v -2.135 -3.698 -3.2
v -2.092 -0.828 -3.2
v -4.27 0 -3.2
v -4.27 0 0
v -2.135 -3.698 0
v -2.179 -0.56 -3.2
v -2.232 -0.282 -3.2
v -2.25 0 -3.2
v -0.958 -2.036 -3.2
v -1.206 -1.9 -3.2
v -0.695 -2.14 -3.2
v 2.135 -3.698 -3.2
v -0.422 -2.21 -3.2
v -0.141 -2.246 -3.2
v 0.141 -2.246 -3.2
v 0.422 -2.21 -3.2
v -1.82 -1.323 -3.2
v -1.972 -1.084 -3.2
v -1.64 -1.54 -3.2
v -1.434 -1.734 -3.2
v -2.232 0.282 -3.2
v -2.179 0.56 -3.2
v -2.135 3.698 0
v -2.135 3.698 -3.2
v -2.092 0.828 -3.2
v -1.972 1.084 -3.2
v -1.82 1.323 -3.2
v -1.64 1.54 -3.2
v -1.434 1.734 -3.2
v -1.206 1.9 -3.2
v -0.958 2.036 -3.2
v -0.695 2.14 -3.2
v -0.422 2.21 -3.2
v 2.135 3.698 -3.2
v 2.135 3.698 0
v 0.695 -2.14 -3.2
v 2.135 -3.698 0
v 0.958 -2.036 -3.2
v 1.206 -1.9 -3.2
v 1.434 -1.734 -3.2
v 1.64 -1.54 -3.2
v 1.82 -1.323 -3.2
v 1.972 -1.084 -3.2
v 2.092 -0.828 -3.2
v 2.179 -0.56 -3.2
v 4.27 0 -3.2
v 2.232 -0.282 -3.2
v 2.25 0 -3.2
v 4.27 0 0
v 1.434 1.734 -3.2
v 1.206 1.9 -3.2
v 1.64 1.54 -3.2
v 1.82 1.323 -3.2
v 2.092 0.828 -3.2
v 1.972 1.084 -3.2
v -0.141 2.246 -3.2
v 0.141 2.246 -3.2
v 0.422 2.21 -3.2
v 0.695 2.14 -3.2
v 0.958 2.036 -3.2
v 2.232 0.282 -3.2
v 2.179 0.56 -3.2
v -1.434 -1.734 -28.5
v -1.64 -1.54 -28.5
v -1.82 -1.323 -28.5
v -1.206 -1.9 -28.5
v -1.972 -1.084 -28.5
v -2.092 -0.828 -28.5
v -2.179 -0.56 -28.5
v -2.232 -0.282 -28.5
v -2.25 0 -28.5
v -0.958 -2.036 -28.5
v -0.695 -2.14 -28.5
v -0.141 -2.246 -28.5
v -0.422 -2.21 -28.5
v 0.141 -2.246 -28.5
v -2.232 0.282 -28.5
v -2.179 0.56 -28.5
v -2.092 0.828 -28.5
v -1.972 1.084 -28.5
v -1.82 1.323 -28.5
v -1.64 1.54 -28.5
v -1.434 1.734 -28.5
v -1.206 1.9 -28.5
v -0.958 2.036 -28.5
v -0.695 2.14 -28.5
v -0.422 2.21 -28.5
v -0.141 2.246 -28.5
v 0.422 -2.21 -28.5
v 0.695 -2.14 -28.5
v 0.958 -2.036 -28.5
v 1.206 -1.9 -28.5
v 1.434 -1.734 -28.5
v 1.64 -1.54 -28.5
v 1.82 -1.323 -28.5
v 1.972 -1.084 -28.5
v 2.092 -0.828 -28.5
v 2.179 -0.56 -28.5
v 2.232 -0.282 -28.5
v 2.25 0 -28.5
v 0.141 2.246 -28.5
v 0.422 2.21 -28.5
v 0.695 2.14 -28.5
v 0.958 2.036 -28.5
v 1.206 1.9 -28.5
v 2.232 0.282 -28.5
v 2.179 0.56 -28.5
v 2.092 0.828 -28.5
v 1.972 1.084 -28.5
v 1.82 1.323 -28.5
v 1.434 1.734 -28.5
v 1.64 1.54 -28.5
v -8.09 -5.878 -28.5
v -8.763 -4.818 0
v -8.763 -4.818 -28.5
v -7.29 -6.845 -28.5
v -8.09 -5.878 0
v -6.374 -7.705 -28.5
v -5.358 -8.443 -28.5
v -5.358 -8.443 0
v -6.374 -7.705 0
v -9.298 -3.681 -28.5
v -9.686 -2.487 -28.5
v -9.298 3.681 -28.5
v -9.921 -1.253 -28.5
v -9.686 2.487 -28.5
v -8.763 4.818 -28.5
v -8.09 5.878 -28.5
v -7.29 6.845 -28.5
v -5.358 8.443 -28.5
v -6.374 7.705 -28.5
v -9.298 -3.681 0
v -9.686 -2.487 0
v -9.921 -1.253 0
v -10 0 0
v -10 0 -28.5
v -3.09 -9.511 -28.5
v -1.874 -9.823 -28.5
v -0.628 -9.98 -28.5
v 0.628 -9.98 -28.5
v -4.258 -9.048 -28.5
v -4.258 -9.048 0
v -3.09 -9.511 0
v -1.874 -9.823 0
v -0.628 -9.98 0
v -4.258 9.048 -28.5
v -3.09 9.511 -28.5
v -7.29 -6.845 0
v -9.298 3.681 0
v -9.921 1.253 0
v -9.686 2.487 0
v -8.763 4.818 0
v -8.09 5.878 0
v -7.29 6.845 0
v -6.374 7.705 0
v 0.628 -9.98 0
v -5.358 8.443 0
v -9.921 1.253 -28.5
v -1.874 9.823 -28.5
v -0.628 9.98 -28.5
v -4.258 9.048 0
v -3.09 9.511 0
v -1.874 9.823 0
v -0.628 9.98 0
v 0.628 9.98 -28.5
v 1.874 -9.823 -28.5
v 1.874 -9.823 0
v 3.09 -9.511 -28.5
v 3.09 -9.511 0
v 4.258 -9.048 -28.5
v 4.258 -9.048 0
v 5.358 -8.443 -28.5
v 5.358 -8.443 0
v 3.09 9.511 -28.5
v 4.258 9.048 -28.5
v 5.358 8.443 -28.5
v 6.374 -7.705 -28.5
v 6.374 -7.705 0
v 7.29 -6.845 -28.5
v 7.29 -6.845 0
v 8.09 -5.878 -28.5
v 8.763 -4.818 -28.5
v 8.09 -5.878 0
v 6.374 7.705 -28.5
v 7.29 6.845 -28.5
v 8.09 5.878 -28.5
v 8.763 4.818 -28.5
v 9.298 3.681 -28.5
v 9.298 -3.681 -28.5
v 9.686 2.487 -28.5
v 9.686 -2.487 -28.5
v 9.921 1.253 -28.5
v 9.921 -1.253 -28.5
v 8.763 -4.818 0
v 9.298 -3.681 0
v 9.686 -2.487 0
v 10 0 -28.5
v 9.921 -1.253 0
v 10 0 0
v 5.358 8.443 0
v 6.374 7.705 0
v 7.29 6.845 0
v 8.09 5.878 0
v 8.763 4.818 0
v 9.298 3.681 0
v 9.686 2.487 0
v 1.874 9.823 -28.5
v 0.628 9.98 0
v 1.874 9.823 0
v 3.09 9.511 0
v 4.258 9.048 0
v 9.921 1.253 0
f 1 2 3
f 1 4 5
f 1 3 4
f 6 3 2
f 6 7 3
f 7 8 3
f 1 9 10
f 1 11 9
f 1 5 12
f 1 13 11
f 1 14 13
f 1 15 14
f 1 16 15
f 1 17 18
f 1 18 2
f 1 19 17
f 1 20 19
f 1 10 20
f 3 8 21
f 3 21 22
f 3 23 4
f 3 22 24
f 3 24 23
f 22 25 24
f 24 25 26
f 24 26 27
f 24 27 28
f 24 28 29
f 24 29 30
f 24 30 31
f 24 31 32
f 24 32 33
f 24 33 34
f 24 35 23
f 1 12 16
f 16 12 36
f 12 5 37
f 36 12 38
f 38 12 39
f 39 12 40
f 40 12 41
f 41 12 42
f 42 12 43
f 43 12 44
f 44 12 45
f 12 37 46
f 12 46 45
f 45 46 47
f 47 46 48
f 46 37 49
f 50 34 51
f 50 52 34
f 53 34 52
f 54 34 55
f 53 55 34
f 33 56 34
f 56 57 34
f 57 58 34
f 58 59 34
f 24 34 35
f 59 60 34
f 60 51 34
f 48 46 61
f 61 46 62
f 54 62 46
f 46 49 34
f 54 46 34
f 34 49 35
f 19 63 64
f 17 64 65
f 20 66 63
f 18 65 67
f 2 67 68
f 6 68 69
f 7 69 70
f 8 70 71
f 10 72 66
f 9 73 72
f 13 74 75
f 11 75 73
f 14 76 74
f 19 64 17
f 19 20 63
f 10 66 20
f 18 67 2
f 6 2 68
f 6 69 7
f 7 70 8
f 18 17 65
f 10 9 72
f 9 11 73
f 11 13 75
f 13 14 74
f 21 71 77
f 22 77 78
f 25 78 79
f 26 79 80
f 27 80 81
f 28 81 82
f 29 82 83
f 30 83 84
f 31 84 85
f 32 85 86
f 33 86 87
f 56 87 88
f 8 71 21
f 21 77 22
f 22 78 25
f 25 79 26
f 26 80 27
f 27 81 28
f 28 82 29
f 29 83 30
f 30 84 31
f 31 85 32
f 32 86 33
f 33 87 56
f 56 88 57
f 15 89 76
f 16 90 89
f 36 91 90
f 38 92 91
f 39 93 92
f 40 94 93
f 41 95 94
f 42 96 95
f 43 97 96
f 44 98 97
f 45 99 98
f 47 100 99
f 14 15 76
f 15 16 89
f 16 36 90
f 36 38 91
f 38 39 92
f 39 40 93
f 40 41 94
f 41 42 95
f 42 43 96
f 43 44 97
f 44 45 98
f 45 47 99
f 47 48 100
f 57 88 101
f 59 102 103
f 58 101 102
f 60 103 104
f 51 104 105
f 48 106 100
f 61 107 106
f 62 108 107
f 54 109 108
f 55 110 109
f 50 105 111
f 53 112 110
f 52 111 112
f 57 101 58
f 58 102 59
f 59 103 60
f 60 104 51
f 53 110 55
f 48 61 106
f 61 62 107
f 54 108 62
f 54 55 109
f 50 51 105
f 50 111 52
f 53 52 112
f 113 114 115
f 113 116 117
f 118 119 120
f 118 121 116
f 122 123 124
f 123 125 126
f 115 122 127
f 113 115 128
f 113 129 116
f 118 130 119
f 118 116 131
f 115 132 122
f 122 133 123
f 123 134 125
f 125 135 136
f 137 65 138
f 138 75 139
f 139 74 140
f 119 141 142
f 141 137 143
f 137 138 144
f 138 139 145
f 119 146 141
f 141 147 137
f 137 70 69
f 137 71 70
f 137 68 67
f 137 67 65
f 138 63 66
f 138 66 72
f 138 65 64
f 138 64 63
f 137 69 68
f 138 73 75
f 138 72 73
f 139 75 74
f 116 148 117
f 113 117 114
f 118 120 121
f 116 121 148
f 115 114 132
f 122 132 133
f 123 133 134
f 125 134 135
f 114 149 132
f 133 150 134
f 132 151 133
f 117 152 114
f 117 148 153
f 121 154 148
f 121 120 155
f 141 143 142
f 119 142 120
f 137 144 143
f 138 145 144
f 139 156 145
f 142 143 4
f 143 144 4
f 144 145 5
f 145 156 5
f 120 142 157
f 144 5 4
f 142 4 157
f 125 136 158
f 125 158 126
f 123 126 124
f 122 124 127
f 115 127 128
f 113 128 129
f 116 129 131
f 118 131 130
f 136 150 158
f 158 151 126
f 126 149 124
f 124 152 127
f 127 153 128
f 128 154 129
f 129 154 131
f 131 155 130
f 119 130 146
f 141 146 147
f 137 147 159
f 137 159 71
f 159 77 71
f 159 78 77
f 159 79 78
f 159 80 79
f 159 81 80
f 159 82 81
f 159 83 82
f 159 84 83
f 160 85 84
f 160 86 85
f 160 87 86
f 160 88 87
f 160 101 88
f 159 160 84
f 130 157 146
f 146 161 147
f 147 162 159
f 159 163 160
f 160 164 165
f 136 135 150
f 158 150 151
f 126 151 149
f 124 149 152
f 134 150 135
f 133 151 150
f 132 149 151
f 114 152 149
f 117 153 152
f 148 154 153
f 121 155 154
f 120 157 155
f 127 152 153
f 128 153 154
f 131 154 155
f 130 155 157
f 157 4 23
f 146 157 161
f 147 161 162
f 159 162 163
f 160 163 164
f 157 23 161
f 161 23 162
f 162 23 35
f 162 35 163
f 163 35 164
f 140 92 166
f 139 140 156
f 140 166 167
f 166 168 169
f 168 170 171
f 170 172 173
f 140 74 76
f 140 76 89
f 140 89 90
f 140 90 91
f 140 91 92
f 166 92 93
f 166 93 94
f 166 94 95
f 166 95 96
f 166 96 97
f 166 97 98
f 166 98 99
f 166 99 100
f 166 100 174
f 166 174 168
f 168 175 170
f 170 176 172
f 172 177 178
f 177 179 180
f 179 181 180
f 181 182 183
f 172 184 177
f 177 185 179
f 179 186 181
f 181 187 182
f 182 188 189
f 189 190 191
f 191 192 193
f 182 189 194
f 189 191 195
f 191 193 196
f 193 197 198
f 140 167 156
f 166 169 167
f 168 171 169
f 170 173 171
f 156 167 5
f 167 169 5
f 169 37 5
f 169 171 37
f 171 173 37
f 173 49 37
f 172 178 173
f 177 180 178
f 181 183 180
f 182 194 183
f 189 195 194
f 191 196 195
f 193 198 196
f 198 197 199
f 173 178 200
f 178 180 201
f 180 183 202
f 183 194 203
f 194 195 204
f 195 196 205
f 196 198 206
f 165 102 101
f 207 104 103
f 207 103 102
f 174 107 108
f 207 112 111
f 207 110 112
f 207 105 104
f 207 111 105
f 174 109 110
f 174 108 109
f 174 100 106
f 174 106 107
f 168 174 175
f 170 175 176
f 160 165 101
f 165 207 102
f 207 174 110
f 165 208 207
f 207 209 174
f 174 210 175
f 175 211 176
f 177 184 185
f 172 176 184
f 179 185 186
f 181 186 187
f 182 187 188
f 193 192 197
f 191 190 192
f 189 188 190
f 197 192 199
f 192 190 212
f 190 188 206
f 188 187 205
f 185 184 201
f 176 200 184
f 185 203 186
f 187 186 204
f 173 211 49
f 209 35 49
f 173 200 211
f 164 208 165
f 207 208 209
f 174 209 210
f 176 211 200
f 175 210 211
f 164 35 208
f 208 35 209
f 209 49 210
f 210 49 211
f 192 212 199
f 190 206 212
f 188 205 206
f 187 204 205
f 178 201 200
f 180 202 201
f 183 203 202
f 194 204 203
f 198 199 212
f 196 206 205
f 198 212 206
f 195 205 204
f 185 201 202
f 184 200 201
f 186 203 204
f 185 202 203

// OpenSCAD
$fn = 50;

difference() {
	union() {
		translate(v = [0, 0, -28.5]) {
			cylinder(h = 28.5, r = 10.0);
		}
	}
	union() {
		translate(v = [0, 0, 0]) {
			rotate(a = [0, 0, 0]) {
				difference() {
					union() {
						translate(v = [0, 0, -3.2]) {
							linear_extrude(height = 3.2) {
								polygon(points = [[4.2698, 0.0], [2.1349000000000005, 3.697755269078796], [-2.134899999999999, 3.6977552690787965], [-4.2698, 5.228996902999369e-16], [-2.134900000000002, -3.6977552690787956], [2.1348999999999974, -3.697755269078798]]);
							}
						}
					}
					union();
				}
			}
		}
		#translate(v = [0, 0, -100.0]) {
			cylinder(h = 200, r = 2.25);
		}
	}
}
